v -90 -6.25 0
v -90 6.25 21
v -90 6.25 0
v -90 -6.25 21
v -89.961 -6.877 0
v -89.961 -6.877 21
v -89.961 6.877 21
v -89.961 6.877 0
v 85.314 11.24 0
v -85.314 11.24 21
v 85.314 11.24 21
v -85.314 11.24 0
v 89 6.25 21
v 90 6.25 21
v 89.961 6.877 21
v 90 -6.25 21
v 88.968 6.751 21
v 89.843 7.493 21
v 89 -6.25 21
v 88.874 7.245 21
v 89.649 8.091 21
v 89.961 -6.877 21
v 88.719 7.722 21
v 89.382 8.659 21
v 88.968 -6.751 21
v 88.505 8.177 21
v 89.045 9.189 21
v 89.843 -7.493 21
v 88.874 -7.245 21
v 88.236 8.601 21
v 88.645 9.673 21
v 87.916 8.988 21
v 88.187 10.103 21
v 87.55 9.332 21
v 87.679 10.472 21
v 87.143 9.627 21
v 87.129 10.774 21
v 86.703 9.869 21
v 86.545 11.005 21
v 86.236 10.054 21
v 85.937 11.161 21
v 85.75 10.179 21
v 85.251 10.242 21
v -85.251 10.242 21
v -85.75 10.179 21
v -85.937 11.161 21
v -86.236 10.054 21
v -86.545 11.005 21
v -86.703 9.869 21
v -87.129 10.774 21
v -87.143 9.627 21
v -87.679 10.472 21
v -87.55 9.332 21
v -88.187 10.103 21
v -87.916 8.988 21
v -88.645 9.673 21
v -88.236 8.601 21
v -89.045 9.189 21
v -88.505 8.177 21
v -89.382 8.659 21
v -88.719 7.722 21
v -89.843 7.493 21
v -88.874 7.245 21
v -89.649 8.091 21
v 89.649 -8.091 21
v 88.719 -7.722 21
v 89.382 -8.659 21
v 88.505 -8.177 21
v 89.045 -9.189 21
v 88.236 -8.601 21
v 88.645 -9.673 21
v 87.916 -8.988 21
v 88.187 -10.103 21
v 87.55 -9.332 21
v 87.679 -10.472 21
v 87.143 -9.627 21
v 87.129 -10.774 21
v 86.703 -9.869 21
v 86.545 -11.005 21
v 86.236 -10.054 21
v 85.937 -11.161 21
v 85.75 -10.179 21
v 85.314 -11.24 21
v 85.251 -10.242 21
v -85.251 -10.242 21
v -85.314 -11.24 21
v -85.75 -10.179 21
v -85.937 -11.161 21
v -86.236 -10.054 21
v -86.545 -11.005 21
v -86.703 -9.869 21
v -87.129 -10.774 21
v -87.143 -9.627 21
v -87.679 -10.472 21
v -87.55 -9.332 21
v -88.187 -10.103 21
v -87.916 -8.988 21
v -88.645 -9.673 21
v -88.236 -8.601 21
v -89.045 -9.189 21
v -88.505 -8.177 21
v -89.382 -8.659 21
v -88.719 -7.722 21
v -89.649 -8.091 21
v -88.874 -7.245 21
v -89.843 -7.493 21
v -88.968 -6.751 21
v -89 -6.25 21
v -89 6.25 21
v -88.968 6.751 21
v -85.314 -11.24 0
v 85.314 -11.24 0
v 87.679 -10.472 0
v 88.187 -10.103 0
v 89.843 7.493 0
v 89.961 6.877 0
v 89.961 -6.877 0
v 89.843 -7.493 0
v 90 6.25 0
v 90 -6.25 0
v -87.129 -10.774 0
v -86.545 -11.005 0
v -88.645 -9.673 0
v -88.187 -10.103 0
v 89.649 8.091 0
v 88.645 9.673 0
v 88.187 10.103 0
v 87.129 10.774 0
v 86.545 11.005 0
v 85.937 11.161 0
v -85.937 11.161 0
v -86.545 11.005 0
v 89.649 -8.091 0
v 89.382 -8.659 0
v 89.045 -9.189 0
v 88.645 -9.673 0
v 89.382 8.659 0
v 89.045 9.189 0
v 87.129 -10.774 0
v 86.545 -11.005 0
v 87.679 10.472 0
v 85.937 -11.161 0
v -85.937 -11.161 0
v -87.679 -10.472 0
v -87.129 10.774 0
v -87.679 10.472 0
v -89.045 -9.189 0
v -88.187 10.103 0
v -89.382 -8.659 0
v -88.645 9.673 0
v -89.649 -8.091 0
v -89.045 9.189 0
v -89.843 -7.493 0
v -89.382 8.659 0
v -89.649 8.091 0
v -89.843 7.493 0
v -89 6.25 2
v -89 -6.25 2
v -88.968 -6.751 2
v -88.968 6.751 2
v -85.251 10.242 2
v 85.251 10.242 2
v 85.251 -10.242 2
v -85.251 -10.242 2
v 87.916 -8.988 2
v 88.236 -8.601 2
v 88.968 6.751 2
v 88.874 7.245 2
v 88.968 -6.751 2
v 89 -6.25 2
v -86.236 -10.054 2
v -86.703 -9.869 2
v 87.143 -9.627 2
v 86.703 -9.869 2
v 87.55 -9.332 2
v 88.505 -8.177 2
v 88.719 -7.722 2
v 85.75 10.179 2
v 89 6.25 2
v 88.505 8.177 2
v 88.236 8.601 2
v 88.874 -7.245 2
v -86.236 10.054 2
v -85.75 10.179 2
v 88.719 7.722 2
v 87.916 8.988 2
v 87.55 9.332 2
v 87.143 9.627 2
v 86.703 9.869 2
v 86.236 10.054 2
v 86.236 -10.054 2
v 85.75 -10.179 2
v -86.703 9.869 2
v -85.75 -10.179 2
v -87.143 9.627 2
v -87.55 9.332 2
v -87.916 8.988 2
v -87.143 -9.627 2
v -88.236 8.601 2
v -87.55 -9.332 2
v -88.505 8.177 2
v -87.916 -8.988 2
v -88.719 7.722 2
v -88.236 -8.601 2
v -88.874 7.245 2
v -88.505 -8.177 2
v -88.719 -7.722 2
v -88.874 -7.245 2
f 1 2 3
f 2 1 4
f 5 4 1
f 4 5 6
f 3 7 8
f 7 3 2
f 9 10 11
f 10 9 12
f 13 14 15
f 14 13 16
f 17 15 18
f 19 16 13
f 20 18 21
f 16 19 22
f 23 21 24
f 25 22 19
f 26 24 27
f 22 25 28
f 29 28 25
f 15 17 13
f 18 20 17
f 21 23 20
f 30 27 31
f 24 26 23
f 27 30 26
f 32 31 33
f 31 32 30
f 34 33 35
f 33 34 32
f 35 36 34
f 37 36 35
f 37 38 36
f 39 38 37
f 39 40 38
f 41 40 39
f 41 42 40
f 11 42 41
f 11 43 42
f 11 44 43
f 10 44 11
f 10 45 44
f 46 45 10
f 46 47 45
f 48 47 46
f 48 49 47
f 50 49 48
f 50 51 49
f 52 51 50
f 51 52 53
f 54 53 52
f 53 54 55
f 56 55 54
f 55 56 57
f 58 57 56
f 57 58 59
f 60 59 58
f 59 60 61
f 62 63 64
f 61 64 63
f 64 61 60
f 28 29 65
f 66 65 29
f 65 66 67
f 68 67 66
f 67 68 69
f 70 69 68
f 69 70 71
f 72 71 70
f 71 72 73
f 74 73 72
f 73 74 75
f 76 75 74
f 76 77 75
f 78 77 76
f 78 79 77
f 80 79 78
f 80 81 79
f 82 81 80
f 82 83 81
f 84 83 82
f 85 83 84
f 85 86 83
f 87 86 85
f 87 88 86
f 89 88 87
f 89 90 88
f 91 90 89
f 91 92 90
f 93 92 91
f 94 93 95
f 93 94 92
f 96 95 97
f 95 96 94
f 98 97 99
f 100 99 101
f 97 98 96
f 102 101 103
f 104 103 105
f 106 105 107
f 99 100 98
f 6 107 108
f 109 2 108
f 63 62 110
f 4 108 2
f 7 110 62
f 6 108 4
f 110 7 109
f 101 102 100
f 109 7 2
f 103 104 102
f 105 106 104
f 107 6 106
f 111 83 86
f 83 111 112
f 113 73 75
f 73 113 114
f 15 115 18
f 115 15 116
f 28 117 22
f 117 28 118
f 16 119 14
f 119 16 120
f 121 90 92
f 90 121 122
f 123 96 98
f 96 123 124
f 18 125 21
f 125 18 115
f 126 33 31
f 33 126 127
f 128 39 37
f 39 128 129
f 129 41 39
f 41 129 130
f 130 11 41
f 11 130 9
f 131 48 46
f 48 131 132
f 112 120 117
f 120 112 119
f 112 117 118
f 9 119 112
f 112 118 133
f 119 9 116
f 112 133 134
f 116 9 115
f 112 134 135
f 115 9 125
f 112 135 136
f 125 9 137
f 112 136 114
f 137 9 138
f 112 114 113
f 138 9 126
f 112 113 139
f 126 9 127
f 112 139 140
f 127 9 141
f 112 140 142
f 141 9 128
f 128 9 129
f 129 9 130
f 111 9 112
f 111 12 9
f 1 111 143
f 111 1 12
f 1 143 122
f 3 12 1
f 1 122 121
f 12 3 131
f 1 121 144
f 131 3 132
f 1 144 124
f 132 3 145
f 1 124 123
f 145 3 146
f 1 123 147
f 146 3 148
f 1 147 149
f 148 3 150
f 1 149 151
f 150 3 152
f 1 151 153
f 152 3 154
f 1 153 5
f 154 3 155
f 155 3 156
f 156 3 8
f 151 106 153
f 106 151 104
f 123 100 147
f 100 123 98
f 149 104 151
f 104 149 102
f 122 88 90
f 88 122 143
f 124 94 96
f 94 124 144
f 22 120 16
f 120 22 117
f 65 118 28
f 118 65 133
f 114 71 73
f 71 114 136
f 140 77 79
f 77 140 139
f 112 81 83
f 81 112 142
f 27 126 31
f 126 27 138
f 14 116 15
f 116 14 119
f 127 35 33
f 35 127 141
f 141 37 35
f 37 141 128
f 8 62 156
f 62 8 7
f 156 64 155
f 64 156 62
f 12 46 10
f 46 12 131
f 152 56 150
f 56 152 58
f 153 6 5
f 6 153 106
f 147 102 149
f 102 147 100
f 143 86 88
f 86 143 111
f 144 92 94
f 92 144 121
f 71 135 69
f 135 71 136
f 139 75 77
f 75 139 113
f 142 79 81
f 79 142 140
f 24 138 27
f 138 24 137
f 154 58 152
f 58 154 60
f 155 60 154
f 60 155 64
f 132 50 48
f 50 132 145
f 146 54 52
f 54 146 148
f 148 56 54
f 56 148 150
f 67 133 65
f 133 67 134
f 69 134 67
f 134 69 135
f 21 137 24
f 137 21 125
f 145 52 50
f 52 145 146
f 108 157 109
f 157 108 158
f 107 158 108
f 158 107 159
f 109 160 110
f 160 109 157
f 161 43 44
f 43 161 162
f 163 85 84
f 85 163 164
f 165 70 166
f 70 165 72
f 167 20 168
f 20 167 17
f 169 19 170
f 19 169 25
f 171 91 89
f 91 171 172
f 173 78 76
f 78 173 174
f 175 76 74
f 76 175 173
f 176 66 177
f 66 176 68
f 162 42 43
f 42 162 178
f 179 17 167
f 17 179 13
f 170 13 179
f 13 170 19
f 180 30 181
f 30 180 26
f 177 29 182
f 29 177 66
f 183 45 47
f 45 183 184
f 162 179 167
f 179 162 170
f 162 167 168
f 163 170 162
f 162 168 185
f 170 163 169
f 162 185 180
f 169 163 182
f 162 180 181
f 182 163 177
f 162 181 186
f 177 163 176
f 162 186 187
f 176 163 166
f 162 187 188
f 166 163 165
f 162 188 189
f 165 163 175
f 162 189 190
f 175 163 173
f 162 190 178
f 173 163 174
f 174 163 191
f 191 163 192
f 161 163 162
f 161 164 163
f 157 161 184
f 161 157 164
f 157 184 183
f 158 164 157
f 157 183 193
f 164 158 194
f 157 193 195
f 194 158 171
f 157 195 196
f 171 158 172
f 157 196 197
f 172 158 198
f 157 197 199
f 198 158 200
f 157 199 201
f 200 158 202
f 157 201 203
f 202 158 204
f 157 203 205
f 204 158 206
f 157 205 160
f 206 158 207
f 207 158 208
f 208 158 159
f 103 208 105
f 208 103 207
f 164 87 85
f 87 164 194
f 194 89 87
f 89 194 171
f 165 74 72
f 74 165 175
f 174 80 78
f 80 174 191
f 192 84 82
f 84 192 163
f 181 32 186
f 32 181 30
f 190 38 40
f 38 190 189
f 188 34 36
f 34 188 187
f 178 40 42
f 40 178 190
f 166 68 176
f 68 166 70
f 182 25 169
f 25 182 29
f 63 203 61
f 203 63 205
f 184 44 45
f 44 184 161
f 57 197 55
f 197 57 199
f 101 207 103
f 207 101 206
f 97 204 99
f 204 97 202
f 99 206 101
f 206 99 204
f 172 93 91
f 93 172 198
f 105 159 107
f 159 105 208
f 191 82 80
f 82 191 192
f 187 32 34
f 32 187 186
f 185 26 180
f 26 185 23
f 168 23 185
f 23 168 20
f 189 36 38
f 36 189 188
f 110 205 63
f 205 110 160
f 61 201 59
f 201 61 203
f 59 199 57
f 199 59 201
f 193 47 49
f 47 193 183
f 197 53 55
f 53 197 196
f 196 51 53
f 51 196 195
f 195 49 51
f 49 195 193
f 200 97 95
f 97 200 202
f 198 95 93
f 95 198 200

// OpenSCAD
$fn = 50;


difference() {
	union() {
		hull() {
			translate(v = [-85.0000000000, 6.2500000000, 0]) {
				cylinder(h = 21, r = 5);
			}
			translate(v = [85.0000000000, 6.2500000000, 0]) {
				cylinder(h = 21, r = 5);
			}
			translate(v = [-85.0000000000, -6.2500000000, 0]) {
				cylinder(h = 21, r = 5);
			}
			translate(v = [85.0000000000, -6.2500000000, 0]) {
				cylinder(h = 21, r = 5);
			}
		}
	}
	union() {
		translate(v = [0, 0, 2]) {
			hull() {
				translate(v = [-85.0000000000, 6.2500000000, 0]) {
					cylinder(h = 19, r = 4);
				}
				translate(v = [85.0000000000, 6.2500000000, 0]) {
					cylinder(h = 19, r = 4);
				}
				translate(v = [-85.0000000000, -6.2500000000, 0]) {
					cylinder(h = 19, r = 4);
				}
				translate(v = [85.0000000000, -6.2500000000, 0]) {
					cylinder(h = 19, r = 4);
				}
			}
		}
	}
}
